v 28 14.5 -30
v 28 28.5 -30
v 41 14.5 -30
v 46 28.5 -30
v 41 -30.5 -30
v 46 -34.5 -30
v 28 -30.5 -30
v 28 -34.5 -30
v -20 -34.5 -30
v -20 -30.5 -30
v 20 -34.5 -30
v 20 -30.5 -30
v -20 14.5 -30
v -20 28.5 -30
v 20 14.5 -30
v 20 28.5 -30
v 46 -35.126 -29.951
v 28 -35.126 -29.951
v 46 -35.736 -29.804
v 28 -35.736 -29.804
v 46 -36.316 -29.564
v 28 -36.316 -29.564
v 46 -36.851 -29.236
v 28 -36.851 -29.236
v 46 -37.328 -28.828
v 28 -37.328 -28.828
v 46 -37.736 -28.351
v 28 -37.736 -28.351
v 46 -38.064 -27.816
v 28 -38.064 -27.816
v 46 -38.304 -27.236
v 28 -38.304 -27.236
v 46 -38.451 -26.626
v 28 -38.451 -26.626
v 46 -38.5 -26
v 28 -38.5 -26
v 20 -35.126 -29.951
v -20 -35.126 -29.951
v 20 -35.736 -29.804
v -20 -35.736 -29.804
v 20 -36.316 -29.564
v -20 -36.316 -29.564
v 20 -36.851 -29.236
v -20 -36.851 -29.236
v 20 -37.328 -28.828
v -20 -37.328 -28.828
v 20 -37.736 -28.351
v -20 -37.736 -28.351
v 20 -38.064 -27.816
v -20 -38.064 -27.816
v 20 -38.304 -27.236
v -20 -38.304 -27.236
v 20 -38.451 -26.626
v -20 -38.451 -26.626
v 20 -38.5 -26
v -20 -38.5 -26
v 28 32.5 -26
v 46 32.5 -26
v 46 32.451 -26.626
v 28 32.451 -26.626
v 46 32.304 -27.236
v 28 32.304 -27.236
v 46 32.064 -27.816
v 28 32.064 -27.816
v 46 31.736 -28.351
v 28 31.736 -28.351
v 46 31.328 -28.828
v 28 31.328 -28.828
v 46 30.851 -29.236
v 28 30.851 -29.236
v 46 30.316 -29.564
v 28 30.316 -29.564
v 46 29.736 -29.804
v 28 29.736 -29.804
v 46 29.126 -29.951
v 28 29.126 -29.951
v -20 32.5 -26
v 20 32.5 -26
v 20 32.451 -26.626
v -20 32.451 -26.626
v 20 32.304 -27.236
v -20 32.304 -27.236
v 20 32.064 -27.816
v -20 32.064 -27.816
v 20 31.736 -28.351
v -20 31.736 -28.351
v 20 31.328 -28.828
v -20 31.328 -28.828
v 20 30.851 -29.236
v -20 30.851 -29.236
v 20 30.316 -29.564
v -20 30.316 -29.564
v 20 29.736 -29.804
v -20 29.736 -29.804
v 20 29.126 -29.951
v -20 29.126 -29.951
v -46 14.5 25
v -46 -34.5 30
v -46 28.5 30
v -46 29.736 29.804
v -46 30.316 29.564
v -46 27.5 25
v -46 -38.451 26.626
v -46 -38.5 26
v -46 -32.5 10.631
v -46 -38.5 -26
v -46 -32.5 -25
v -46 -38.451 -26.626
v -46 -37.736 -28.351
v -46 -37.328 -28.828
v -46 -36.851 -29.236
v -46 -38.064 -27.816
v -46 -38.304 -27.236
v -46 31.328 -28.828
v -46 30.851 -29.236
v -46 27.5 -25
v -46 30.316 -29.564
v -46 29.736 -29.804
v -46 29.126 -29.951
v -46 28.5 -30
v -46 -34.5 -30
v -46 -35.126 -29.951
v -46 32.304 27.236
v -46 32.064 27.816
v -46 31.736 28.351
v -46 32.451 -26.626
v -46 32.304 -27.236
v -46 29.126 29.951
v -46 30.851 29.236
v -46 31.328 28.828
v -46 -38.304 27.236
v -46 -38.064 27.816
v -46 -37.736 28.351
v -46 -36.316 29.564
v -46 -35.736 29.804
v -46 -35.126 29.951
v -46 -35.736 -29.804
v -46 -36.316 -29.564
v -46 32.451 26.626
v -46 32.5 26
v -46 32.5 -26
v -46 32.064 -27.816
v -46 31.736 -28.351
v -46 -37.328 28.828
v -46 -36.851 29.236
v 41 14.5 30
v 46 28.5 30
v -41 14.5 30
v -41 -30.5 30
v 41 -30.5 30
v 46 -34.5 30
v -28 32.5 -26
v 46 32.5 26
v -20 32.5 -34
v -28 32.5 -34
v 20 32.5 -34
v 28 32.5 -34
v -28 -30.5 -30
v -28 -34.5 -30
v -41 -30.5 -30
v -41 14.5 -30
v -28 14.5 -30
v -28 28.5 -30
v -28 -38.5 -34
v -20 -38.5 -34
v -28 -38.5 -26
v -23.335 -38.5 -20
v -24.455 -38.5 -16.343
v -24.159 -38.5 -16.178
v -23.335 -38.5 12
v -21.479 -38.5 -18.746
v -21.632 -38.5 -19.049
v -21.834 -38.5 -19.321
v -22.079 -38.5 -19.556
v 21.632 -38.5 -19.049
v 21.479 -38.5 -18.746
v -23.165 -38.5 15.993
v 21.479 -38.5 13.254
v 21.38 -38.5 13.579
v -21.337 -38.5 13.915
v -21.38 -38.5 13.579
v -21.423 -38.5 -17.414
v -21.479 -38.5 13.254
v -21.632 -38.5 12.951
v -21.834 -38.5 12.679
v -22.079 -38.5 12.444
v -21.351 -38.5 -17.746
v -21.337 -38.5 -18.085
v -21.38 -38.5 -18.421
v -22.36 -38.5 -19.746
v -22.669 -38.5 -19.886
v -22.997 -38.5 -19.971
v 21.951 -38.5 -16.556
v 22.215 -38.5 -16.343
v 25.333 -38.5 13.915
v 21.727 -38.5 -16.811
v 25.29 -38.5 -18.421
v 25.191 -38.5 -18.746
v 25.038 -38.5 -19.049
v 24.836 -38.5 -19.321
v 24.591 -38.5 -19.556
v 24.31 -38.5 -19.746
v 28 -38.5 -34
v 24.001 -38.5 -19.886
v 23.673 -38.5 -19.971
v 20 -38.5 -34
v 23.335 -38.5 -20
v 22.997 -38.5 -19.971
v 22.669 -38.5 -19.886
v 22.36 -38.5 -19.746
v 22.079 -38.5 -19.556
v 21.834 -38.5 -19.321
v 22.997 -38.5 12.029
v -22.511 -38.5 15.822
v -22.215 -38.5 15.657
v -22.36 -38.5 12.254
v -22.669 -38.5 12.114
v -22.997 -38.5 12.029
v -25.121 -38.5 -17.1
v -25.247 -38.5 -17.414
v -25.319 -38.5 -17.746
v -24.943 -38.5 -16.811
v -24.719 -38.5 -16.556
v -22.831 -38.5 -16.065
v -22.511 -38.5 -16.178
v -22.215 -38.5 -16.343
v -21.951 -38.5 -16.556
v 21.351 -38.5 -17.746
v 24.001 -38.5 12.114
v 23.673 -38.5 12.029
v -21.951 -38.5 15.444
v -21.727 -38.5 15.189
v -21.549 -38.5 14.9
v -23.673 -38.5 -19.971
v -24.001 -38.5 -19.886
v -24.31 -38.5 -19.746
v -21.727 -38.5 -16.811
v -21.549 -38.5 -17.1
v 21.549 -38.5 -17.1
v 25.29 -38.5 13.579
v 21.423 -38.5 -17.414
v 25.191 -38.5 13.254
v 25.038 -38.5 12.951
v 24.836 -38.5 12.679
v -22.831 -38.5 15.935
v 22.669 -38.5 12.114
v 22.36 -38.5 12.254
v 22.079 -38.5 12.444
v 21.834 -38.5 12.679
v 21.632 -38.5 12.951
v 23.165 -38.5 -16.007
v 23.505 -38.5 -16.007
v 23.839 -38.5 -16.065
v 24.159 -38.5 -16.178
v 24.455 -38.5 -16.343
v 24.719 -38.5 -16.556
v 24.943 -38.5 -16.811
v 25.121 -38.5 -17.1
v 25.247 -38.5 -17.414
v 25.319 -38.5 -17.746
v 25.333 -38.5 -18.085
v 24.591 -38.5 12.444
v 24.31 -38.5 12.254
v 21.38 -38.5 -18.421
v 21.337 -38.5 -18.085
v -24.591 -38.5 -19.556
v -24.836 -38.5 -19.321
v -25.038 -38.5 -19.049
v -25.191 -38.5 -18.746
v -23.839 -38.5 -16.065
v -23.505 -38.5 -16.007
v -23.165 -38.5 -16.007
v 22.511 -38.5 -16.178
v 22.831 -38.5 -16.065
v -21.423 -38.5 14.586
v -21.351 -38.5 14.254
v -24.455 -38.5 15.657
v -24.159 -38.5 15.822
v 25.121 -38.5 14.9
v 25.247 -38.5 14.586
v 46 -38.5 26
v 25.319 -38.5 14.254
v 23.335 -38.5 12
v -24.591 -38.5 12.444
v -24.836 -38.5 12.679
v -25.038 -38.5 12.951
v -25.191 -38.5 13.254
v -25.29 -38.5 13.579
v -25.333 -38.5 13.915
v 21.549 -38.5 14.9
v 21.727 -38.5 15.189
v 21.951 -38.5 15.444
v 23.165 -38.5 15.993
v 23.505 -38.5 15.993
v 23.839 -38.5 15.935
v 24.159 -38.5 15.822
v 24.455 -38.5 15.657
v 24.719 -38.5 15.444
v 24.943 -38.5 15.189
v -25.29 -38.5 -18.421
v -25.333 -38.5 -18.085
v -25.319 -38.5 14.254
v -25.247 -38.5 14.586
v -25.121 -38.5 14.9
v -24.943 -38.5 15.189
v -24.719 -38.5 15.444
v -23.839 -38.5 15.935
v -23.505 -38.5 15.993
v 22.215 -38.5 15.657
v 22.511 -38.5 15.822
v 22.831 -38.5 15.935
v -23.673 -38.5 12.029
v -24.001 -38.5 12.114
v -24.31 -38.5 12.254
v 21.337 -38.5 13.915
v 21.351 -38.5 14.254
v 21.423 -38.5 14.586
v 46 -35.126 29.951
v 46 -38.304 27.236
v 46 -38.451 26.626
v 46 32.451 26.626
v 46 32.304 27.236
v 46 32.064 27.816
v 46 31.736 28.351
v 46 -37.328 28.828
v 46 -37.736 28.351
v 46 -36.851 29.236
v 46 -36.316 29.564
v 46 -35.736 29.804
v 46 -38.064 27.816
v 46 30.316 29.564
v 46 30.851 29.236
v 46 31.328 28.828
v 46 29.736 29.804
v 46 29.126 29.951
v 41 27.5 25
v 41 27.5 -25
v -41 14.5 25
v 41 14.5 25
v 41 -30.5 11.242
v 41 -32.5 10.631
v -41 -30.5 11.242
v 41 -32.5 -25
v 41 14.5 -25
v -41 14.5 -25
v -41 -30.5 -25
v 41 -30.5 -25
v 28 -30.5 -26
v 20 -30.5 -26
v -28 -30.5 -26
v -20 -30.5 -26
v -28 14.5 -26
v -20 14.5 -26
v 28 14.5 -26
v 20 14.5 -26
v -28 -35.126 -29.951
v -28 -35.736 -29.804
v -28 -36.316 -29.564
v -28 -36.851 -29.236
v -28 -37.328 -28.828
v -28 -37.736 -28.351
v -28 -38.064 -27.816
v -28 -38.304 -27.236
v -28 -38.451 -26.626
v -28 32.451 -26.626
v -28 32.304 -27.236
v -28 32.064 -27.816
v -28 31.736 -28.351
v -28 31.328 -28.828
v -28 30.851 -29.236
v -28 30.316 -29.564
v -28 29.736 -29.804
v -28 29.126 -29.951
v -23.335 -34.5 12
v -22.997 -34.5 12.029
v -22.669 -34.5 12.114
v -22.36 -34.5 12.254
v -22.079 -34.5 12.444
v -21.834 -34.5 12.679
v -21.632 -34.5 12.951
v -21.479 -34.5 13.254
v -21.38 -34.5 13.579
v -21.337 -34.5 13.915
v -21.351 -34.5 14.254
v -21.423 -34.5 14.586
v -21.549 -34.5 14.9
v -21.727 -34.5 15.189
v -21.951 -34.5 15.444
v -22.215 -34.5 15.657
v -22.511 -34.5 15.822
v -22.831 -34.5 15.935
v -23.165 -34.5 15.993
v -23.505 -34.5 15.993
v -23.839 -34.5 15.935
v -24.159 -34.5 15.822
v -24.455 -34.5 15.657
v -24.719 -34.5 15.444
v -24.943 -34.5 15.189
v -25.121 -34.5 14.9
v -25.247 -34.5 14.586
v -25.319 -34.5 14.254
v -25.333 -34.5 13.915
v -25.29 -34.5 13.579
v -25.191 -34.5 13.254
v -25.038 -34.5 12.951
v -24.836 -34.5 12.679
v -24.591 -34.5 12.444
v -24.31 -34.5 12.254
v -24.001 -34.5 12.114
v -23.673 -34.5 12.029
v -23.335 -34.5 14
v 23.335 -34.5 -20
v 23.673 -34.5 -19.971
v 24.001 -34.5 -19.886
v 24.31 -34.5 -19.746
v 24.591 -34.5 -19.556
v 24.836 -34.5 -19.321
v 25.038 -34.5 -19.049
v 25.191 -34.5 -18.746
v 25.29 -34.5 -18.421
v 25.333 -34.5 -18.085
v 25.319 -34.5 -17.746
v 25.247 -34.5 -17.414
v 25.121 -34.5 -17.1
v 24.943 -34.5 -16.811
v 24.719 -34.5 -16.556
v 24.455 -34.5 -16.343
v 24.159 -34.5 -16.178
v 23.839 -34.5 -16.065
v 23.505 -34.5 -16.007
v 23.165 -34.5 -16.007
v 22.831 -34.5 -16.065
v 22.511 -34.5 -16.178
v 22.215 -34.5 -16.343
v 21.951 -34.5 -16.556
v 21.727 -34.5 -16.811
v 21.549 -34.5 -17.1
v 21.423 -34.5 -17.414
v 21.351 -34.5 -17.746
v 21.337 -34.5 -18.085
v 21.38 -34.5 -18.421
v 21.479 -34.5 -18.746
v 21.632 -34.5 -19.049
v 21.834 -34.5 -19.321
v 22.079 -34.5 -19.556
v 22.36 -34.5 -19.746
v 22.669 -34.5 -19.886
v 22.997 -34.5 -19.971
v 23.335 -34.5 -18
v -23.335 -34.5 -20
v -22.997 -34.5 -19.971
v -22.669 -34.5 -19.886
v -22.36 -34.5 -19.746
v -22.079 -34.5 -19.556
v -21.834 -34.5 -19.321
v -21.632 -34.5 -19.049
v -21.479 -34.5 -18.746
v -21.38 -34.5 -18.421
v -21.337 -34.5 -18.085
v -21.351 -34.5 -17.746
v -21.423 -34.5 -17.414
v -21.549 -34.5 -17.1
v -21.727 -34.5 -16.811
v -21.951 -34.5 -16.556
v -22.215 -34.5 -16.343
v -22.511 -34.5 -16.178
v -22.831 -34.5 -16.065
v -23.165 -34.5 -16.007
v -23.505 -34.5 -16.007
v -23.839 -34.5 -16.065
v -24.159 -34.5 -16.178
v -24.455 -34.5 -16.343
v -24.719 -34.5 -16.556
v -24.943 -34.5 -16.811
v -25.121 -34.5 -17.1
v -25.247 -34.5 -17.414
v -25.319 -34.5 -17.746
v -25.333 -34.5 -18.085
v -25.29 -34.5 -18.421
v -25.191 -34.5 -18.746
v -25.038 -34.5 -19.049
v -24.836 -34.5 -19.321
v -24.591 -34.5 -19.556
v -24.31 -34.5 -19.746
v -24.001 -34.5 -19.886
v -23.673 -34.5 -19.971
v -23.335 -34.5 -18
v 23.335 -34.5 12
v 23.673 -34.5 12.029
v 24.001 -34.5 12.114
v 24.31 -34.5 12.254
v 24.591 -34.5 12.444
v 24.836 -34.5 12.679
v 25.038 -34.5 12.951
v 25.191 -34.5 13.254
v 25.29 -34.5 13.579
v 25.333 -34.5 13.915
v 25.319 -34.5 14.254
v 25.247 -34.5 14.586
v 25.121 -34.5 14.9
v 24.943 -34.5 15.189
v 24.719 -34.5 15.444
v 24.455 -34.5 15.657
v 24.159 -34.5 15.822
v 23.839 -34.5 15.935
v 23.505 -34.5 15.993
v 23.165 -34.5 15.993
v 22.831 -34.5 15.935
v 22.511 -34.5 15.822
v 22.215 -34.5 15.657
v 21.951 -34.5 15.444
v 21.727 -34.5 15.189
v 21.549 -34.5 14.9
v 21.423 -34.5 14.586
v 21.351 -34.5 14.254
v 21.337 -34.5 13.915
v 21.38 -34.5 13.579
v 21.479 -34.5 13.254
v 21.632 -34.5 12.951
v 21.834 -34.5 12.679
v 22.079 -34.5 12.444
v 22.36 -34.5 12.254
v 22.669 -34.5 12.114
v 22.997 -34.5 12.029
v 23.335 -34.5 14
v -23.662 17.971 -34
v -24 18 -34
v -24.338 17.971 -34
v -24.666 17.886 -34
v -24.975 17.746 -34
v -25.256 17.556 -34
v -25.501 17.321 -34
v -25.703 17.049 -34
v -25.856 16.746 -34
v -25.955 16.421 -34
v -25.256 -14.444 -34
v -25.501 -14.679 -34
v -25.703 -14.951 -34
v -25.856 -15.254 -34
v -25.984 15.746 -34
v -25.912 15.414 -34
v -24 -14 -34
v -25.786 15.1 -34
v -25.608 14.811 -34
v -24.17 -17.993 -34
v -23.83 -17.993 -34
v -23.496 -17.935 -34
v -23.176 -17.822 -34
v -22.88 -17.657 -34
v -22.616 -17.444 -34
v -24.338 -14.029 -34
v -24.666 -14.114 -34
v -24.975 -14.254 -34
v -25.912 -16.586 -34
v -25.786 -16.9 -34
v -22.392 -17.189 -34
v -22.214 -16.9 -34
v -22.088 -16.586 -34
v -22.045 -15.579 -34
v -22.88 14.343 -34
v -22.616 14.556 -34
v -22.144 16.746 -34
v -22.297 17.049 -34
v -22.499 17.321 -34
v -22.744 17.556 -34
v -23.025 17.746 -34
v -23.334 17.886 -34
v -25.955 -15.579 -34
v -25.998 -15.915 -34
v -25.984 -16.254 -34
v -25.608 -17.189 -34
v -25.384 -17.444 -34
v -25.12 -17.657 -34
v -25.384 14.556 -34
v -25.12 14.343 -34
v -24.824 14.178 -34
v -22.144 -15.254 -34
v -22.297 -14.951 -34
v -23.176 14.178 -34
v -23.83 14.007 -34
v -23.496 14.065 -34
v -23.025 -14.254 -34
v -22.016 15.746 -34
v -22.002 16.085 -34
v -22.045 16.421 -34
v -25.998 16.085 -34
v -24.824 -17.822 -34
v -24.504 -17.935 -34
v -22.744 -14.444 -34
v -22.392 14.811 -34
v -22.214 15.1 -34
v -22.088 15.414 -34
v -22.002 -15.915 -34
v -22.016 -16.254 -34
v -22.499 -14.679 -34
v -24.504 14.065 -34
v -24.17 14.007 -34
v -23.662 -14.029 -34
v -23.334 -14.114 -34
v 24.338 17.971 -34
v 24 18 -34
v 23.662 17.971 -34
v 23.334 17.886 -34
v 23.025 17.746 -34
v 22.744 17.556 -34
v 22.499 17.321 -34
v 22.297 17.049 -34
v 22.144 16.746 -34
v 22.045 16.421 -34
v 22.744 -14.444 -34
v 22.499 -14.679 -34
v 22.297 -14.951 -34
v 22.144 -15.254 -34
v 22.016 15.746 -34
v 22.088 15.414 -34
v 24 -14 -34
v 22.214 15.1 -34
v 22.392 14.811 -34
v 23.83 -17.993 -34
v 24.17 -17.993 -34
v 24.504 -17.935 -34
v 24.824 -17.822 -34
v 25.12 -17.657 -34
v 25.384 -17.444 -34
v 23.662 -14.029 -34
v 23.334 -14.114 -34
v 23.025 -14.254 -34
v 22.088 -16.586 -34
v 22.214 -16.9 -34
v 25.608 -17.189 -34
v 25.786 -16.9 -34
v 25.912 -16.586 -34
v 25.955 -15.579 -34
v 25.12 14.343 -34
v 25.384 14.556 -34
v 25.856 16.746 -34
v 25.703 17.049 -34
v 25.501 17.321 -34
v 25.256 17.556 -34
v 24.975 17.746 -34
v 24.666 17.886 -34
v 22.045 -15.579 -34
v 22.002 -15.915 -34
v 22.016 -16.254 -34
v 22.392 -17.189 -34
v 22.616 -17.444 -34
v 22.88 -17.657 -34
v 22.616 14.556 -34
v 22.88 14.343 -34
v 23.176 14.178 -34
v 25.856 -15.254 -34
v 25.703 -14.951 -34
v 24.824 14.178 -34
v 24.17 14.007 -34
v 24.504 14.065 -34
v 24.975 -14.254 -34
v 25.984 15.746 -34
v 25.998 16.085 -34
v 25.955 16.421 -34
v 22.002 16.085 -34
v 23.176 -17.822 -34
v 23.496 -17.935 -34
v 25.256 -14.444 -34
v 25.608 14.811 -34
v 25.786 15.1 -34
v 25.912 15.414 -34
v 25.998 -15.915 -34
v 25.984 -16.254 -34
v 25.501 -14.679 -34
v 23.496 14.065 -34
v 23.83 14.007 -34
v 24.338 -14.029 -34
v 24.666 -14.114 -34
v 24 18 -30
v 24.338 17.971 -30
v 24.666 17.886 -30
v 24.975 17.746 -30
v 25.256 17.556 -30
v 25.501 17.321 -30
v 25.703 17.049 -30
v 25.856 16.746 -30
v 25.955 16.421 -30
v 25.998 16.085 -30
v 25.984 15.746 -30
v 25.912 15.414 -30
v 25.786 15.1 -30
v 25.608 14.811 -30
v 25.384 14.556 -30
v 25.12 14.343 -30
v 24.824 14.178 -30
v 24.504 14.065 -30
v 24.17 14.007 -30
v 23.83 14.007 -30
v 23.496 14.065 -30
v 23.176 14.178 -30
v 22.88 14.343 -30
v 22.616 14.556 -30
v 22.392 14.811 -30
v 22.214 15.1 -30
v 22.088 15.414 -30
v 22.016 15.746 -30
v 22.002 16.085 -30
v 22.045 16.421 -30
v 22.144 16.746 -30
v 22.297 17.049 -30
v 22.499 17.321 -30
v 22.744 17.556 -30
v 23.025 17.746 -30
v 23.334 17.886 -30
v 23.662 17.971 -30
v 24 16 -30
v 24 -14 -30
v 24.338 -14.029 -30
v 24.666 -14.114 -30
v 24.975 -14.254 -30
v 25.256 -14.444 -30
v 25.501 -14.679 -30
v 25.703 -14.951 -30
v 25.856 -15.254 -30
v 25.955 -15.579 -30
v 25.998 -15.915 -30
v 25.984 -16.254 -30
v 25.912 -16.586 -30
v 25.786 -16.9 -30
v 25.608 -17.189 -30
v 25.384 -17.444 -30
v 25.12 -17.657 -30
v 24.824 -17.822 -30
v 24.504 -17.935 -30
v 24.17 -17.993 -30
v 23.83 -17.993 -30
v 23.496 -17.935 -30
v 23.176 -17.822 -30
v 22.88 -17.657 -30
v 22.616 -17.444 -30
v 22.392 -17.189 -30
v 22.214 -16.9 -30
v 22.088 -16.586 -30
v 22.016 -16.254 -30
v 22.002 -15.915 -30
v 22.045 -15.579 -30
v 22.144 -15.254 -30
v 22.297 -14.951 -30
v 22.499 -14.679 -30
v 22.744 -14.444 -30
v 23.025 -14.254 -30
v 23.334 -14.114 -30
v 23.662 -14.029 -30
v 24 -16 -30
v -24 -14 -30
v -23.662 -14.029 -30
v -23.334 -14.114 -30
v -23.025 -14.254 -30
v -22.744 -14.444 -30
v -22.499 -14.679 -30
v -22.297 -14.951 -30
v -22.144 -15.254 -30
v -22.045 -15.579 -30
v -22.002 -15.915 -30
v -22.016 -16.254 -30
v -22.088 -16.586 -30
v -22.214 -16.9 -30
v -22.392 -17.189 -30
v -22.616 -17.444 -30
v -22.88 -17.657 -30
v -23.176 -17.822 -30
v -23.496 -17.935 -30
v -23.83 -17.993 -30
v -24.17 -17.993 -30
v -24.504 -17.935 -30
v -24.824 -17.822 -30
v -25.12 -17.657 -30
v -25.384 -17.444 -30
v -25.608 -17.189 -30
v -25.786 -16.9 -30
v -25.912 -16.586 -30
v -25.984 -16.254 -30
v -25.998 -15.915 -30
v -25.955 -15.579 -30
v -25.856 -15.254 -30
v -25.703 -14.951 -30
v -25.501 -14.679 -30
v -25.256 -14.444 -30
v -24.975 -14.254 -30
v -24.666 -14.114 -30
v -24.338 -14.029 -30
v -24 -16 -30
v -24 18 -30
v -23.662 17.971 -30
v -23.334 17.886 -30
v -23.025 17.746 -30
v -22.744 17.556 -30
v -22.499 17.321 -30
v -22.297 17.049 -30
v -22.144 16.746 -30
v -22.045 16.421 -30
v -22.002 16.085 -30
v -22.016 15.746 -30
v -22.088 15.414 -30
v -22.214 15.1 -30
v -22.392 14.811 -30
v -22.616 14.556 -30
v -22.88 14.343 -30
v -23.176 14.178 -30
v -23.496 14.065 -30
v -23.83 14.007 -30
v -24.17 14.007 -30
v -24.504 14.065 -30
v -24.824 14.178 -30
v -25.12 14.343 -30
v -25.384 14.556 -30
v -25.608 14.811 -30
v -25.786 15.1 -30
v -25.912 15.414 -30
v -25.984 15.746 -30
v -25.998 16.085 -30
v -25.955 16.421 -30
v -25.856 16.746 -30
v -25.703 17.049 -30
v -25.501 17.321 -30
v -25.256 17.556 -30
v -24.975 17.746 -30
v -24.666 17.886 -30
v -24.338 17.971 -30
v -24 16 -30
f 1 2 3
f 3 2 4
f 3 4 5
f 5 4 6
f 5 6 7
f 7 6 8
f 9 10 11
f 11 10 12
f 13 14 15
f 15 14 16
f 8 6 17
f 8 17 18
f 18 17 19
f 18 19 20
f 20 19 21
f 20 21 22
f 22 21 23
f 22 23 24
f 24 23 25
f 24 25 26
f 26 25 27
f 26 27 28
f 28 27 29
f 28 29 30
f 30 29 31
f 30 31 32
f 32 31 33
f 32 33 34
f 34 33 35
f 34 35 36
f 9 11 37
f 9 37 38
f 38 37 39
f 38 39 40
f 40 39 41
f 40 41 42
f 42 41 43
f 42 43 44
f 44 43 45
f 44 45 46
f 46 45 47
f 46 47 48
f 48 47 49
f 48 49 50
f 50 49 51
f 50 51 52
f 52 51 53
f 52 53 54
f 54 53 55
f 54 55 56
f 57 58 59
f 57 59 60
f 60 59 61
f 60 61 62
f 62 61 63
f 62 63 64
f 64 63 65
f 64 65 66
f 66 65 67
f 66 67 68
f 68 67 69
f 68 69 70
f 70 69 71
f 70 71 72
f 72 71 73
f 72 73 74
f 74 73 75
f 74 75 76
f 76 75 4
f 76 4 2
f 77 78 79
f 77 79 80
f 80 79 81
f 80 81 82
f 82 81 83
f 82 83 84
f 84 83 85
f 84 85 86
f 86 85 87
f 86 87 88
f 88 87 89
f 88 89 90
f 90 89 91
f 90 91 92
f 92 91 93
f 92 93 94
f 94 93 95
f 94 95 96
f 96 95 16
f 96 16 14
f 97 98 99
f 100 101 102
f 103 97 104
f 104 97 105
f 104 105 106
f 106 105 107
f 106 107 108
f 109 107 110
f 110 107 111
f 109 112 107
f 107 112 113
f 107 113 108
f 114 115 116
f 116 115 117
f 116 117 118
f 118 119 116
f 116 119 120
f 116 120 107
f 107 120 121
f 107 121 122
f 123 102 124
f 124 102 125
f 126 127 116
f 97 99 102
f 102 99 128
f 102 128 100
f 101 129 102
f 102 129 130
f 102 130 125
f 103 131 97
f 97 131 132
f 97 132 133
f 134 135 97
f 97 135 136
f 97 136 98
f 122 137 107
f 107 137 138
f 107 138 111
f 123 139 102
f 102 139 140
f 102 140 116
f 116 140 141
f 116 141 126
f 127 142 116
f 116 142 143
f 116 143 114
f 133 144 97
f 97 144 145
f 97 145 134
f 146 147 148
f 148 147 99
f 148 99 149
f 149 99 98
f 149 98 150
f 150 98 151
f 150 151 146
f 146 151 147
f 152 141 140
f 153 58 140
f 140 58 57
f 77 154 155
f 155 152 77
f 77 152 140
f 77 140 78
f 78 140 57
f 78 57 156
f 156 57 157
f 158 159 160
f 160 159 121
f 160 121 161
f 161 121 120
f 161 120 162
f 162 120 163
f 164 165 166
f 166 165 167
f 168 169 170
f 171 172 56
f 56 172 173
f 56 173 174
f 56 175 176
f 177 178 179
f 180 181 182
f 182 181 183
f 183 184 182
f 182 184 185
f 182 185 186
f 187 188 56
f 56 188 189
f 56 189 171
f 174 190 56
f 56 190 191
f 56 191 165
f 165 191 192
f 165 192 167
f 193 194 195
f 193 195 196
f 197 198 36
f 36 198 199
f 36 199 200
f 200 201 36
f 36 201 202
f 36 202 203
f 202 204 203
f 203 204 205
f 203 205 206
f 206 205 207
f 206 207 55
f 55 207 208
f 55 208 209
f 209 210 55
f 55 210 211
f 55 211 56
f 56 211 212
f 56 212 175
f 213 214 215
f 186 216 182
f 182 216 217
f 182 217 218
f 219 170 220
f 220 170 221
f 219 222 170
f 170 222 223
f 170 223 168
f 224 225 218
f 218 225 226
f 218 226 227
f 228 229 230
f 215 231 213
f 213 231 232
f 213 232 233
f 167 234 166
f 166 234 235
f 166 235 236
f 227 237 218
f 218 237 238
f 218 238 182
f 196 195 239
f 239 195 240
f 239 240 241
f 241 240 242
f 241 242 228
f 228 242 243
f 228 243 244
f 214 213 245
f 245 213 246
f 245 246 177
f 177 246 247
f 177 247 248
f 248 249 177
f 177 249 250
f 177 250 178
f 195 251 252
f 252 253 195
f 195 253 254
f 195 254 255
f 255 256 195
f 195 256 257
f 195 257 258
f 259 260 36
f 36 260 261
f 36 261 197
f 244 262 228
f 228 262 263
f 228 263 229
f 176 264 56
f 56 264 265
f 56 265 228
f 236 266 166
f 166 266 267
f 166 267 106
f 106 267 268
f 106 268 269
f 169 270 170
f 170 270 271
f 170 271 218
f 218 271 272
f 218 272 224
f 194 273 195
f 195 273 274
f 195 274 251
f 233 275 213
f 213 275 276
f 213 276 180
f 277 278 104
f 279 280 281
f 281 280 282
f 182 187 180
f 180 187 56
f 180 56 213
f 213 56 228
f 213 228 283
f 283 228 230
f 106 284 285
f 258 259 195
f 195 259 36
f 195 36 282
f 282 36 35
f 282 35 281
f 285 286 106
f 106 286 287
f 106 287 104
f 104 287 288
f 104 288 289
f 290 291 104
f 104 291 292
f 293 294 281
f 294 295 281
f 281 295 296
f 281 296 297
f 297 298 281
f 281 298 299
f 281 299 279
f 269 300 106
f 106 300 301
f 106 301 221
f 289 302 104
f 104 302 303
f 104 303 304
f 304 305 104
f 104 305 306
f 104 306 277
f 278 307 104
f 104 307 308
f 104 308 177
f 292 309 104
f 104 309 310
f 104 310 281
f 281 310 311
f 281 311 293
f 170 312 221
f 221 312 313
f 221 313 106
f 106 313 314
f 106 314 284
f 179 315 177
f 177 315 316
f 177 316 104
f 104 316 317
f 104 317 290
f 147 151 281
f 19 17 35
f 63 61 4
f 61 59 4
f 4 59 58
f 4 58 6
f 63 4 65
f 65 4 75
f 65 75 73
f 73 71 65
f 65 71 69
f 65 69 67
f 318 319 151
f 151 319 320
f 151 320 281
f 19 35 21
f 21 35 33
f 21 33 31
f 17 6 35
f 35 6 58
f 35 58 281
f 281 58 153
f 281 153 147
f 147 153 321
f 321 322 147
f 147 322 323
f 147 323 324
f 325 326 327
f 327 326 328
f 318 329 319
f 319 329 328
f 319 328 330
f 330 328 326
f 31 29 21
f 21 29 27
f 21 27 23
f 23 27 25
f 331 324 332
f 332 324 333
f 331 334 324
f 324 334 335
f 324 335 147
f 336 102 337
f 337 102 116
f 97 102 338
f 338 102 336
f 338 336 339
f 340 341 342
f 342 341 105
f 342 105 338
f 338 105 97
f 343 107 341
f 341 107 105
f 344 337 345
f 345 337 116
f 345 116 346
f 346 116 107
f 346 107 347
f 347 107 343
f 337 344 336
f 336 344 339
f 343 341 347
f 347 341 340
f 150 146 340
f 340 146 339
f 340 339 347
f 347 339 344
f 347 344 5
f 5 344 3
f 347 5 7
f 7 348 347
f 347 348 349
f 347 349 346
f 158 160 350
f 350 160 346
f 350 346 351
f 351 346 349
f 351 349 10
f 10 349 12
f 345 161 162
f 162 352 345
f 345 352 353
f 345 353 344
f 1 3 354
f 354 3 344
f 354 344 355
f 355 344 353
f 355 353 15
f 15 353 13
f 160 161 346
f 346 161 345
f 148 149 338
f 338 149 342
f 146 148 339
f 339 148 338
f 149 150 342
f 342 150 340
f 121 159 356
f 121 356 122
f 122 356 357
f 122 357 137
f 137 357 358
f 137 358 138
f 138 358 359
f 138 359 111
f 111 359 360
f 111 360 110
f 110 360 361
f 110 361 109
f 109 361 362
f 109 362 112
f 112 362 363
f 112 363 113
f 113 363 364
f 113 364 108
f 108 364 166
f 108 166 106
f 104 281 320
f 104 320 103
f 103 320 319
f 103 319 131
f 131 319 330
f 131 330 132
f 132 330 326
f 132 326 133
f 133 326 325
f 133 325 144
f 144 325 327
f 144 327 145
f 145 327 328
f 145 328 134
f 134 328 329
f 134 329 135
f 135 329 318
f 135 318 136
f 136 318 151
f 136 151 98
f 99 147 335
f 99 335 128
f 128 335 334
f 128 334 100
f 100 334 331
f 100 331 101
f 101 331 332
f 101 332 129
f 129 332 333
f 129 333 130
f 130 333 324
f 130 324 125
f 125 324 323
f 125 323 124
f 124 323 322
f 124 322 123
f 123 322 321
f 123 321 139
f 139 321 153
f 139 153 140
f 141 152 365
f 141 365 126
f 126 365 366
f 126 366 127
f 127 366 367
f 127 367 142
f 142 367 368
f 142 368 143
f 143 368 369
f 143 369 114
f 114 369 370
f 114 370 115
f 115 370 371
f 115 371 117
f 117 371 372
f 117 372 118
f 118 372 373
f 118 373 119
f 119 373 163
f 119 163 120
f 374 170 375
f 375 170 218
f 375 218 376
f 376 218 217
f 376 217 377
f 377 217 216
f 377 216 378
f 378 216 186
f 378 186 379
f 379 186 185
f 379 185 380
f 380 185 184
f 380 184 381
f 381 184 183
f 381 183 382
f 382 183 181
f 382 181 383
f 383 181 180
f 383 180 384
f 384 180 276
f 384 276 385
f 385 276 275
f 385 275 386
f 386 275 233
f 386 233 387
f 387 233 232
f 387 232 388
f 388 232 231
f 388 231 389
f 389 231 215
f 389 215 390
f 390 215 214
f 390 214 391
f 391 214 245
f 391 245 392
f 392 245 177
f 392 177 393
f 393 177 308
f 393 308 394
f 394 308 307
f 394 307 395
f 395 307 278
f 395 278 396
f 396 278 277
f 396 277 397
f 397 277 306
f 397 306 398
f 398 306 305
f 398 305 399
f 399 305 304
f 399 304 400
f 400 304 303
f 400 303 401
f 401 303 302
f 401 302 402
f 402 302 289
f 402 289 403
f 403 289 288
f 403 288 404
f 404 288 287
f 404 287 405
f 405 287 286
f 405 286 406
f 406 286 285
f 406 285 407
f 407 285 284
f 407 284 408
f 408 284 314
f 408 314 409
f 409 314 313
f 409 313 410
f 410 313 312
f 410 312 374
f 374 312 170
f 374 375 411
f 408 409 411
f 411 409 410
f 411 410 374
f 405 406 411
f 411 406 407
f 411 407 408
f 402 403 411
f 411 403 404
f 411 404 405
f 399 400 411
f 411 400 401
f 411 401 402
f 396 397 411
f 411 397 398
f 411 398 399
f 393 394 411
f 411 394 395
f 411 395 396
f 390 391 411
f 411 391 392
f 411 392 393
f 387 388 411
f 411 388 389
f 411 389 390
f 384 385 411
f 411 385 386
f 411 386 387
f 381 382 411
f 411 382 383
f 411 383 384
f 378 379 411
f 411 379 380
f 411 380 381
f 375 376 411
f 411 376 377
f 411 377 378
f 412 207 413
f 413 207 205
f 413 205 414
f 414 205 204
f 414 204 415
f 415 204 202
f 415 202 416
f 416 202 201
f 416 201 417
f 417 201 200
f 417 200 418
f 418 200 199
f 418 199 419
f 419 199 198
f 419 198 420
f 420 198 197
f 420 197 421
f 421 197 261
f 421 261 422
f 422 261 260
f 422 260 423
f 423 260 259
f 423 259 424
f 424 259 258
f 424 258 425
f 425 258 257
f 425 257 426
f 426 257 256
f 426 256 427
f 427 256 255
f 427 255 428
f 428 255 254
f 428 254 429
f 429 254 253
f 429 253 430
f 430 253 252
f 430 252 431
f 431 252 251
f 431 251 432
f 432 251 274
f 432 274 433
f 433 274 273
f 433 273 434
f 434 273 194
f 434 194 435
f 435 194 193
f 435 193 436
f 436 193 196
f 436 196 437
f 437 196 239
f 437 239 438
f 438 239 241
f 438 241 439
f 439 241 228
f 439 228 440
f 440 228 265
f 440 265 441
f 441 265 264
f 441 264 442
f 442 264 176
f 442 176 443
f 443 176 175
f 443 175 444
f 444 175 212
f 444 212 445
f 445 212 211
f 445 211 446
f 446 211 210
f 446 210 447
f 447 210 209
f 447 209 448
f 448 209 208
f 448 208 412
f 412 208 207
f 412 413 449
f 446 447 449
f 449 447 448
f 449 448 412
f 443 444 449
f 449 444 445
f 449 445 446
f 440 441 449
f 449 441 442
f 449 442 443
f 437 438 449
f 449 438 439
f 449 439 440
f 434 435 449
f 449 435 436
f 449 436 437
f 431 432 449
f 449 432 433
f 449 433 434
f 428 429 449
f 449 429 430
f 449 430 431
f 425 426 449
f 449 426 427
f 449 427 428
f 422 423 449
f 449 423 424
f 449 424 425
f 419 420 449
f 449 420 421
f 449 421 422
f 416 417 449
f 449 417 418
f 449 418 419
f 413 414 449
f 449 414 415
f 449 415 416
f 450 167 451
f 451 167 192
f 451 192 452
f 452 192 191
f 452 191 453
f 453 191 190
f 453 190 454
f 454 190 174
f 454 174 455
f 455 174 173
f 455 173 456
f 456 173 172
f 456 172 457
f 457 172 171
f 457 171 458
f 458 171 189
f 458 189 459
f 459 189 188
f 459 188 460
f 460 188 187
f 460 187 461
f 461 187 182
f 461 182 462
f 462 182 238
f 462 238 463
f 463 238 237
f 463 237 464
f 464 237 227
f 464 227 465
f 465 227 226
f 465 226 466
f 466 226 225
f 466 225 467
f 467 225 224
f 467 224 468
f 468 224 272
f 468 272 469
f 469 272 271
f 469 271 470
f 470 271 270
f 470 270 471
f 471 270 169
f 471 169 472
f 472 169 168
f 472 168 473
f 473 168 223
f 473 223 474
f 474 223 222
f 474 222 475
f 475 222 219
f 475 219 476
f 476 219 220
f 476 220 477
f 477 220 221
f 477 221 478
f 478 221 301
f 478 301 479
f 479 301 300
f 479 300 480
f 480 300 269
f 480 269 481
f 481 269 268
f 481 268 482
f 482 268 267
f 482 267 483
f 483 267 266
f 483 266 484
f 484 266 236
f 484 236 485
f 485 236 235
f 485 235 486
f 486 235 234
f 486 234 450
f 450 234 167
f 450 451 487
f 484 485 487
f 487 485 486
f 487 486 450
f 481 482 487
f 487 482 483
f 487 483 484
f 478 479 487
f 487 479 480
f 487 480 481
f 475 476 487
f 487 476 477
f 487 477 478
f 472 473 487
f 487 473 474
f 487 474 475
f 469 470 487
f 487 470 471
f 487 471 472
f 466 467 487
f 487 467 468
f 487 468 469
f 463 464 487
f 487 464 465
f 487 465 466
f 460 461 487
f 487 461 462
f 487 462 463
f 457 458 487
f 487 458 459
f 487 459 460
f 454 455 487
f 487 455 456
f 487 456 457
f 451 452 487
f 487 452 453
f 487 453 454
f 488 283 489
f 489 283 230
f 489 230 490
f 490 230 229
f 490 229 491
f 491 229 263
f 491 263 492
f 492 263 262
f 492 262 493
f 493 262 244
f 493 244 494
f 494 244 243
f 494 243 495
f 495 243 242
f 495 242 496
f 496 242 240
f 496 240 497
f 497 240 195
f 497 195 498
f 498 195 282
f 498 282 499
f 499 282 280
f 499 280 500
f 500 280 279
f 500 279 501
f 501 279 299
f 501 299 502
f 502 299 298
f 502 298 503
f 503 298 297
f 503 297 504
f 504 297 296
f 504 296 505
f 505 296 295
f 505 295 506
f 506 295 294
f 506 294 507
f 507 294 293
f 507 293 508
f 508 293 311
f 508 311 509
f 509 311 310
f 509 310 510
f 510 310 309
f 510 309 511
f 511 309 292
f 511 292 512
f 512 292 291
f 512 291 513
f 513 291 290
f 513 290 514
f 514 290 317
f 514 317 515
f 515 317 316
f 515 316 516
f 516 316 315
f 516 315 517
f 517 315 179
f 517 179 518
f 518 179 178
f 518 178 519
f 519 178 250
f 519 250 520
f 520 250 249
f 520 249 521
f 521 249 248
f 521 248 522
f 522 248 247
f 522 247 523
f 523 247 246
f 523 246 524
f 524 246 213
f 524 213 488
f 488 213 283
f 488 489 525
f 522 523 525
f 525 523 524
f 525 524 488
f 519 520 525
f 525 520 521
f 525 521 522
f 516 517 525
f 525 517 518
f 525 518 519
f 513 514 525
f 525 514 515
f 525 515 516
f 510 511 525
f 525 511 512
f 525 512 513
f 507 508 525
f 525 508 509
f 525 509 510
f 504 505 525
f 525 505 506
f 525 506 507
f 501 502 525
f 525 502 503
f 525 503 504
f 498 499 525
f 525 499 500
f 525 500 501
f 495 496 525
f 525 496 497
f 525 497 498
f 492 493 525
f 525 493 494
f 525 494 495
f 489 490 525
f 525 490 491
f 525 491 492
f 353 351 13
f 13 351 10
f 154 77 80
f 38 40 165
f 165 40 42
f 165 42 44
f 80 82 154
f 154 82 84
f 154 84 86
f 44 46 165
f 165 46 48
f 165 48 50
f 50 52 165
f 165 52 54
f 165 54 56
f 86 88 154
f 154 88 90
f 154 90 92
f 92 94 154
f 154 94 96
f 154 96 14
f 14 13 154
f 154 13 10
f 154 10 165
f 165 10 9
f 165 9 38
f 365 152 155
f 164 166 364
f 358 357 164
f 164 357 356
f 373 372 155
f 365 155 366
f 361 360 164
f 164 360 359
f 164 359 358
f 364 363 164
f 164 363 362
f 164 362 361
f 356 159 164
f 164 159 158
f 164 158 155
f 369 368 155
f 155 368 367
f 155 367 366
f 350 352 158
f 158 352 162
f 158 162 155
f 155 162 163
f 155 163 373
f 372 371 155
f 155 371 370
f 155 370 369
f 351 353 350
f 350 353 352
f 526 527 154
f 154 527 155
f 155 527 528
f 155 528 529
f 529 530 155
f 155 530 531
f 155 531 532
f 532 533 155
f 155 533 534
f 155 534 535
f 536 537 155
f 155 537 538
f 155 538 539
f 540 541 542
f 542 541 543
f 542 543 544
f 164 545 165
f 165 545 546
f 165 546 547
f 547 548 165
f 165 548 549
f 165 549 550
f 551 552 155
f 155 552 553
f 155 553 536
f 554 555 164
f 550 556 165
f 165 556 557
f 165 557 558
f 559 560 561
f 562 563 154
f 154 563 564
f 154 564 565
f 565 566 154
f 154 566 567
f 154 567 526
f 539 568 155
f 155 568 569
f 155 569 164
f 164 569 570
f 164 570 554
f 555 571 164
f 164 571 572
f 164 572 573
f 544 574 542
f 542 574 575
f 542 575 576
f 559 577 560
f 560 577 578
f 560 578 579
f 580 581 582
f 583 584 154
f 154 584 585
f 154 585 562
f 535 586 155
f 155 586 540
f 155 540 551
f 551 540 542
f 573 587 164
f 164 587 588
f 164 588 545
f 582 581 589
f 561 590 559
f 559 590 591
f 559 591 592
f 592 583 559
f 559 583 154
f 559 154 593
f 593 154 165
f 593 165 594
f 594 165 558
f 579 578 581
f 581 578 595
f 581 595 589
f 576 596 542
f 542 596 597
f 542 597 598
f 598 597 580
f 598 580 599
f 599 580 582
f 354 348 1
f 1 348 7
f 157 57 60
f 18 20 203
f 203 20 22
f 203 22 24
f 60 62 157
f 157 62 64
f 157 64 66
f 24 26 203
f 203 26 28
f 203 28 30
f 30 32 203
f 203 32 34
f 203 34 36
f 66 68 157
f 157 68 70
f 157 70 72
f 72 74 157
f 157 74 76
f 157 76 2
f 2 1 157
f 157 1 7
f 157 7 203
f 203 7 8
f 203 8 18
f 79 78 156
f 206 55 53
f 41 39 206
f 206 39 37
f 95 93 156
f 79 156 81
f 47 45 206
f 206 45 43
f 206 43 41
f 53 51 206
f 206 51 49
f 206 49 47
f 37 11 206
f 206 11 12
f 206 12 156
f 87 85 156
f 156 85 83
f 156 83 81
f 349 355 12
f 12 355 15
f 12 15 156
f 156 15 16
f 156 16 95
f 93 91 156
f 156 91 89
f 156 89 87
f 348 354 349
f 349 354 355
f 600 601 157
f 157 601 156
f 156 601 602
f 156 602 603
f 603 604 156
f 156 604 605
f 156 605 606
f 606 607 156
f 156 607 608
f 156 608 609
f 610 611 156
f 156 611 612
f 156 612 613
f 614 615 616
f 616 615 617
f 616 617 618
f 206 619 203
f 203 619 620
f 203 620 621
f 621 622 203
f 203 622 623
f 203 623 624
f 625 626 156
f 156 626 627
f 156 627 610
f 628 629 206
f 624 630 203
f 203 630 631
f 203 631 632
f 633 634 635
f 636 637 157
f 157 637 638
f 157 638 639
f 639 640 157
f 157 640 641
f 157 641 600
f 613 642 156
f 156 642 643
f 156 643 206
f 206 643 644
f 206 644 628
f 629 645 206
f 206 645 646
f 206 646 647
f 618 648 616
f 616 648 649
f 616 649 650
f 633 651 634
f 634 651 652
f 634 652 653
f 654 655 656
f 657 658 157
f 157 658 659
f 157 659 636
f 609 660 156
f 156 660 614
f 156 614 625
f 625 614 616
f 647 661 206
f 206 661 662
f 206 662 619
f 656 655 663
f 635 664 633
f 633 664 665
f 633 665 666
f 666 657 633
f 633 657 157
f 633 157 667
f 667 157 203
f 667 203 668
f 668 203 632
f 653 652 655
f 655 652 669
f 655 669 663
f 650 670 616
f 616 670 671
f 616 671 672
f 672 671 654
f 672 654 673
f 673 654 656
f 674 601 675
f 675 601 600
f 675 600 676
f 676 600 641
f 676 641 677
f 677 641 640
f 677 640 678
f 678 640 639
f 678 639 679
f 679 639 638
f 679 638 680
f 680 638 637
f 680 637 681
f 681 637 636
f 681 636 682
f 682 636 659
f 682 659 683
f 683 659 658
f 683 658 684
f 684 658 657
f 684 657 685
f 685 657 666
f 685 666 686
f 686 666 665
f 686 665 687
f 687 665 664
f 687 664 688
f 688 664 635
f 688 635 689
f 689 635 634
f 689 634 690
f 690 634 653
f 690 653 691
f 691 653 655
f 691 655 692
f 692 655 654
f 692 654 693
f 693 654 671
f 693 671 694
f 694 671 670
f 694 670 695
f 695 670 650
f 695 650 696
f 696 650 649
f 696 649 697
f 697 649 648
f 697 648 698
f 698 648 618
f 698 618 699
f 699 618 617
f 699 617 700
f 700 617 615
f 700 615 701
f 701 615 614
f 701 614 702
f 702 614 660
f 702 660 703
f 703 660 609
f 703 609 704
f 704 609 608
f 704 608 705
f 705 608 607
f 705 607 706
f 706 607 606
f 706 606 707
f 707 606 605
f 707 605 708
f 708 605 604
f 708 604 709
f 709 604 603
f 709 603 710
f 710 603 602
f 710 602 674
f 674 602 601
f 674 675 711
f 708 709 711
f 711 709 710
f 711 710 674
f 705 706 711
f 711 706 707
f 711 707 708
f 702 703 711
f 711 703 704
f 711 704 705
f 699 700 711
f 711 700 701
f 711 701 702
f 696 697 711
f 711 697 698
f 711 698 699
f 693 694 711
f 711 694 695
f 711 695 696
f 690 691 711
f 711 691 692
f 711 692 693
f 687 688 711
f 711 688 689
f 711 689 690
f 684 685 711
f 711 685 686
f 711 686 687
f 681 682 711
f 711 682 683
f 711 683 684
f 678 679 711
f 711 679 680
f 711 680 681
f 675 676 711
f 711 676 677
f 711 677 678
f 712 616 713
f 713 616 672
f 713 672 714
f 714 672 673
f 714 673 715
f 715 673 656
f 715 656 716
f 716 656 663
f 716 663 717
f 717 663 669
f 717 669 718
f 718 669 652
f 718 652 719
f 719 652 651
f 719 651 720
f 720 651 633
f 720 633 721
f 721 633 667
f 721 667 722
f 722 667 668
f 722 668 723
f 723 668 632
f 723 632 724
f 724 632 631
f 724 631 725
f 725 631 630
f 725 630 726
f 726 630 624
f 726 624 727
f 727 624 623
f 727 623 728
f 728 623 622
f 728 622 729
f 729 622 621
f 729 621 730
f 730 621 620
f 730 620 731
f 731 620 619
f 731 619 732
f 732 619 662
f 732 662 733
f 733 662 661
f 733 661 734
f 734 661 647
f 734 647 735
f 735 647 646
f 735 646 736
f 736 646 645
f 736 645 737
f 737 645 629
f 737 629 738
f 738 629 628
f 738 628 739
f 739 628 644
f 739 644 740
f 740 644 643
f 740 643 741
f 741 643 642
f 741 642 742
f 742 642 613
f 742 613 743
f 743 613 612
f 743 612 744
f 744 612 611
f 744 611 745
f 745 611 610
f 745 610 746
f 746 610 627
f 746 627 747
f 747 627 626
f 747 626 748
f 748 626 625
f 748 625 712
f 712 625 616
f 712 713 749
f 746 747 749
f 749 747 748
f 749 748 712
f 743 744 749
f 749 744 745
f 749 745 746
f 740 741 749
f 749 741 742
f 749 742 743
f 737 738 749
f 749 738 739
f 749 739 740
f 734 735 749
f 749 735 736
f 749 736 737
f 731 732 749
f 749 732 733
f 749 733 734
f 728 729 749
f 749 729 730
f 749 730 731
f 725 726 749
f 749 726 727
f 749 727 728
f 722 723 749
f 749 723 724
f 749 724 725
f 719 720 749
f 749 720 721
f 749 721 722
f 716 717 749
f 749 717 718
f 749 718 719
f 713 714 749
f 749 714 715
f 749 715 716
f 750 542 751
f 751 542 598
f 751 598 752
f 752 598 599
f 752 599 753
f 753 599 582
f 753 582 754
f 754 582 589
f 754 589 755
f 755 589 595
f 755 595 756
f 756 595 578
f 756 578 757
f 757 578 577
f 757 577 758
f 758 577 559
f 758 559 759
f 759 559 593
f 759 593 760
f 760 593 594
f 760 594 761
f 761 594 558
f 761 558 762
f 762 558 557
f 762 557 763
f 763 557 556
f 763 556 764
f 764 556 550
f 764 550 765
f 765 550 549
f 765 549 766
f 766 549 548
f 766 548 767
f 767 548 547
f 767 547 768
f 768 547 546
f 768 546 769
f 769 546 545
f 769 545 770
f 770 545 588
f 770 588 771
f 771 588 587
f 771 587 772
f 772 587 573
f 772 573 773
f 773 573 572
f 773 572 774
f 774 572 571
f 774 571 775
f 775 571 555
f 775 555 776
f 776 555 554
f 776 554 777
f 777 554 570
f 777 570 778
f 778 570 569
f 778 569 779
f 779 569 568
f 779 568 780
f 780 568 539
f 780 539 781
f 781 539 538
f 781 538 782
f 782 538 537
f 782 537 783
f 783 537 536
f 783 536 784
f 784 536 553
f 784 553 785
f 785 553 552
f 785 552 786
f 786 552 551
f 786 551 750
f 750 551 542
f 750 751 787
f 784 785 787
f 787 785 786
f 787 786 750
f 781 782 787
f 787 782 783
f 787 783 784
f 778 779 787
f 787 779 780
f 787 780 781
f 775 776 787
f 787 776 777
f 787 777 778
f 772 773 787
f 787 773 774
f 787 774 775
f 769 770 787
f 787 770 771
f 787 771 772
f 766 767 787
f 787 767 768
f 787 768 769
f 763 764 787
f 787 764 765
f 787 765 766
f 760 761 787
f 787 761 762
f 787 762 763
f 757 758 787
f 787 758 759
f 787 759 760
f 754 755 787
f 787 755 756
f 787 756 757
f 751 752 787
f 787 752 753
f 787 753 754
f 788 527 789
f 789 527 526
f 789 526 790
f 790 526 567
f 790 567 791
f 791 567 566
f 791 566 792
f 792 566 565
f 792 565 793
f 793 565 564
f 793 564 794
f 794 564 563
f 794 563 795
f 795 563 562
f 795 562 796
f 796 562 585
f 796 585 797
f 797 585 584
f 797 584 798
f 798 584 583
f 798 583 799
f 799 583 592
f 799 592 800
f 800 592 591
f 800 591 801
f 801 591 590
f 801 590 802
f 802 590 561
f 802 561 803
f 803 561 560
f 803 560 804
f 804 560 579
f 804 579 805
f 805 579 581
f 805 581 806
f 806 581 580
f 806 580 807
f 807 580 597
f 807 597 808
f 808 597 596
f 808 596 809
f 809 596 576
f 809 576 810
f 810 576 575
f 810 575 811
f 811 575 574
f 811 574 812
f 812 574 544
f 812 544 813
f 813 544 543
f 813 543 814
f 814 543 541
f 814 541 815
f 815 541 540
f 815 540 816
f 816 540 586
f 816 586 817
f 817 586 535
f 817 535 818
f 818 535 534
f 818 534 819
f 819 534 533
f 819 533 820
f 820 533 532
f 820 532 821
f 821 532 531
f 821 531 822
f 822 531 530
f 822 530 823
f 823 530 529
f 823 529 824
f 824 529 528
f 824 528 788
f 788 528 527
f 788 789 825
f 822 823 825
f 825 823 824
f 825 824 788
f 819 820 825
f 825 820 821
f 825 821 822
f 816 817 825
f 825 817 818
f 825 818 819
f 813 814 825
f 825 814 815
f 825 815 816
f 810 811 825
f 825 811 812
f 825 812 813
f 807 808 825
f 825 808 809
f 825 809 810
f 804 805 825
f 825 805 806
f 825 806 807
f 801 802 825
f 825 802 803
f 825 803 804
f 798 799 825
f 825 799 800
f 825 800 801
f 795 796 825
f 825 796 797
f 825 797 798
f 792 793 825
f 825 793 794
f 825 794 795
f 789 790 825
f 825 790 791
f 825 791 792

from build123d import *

# Parameters (mm, degrees)
BASE_DEPTH               = 46
BASE_DEPTH_BACK          = 46
SKETCH4_W                = 60
SKETCH4_H                = 71
LIDAR_DEPTH              = 41
LIDAR_DEPTH_BACK         = 46
HOLEFRONTBACK_DEPTH      = 68.068994327
HOLEFRONTBACK_DEPTH_BACK = 68.068994327
SKETCH6_W                = 82
SKETCH6_H                = 45
FILLET2_R                = 4
SKETCH10_R               = 2
CUT_EXTRUDE1_DEPTH       = 4
BOSS_EXTRUDE1_DEPTH      = 4
BOSS_EXTRUDE1_DEPTH_BACK = 4
SKETCH11_W               = 8
SKETCH11_H               = 71
SKETCH12_R               = 2
CUT_EXTRUDE2_DEPTH       = 4


with BuildPart() as part:
    # Sketch4 → Base (new, two sides: drawn at the far end of the back side and taken through both)
    with BuildSketch(Plane(origin=(0, 0, 0), x_dir=(0, 0, -1), z_dir=(1, 0, 0)).offset(-BASE_DEPTH_BACK)):
        with Locations((0, -3)):
            Rectangle(SKETCH4_W, SKETCH4_H)
    extrude(amount=BASE_DEPTH + BASE_DEPTH_BACK)

    # Sketch5 → LIDAR (cut, two sides: drawn at the far end of the back side and taken through both)
    with BuildSketch(Plane(origin=(0, 0, 0), x_dir=(0, 0, -1), z_dir=(1, 0, 0)).offset(-LIDAR_DEPTH_BACK)):
        Polygon((-25, 27.5), (-25, 14.5), (-10.630657971, -32.5), (25, -32.5), (25, 27.5), align=None)
    extrude(amount=LIDAR_DEPTH + LIDAR_DEPTH_BACK, mode=Mode.SUBTRACT)

    # Sketch6 → HoleFrontBack (cut, two sides: drawn at the far end of the back side and taken through both)
    with BuildSketch(Plane.XY.offset(-HOLEFRONTBACK_DEPTH_BACK)):
        with Locations((0, -8)):
            Rectangle(SKETCH6_W, SKETCH6_H)
    extrude(amount=HOLEFRONTBACK_DEPTH + HOLEFRONTBACK_DEPTH_BACK, mode=Mode.SUBTRACT)

    # Fillet2
    fillet2_edges = [part.edges().sort_by_distance(p)[0] for p in [
        (0, 32.5, 30),
        (0, 32.5, -30),
        (0, -38.5, -30),
        (0, -38.5, 30),
    ]]
    fillet(fillet2_edges, radius=FILLET2_R)

    # Sketch10 → Cut-Extrude1 (cut)
    with BuildSketch(Plane.XZ.offset(38.5)):
        with Locations(Location((-23.335, 14, 0), (0, 0, 270))):
            Circle(SKETCH10_R)
        with Locations(Location((23.335, 14, 0), (0, 0, 270))):
            Circle(SKETCH10_R)
        with Locations(Location((-23.335, -18, 0), (0, 0, 270))):
            Circle(SKETCH10_R)
        with Locations(Location((23.335, -18, 0), (0, 0, 270))):
            Circle(SKETCH10_R)
    extrude(amount=-CUT_EXTRUDE1_DEPTH, mode=Mode.SUBTRACT)

    # Sketch11 → Boss-Extrude1 (add, two sides: drawn at the far end of the back side and taken through both)
    with BuildSketch(Plane(origin=(0, 0, -30), x_dir=(-1, 0, 0), z_dir=(0, 0, -1)).offset(-BOSS_EXTRUDE1_DEPTH_BACK)):
        with Locations((-24, -3)):
            Rectangle(SKETCH11_W, SKETCH11_H)
        with Locations((24, -3)):
            Rectangle(SKETCH11_W, SKETCH11_H)
    extrude(amount=BOSS_EXTRUDE1_DEPTH + BOSS_EXTRUDE1_DEPTH_BACK)

    # Sketch12 → Cut-Extrude2 (cut)
    with BuildSketch(Plane(origin=(0, 0, -34), x_dir=(-1, 0, 0), z_dir=(0, 0, -1))):
        with Locations(Location((-24, 16, 0), (0, 0, 90))):
            Circle(SKETCH12_R)
        with Locations(Location((24, 16, 0), (0, 0, 90))):
            Circle(SKETCH12_R)
        with Locations(Location((-24, -16, 0), (0, 0, 90))):
            Circle(SKETCH12_R)
        with Locations(Location((24, -16, 0), (0, 0, 90))):
            Circle(SKETCH12_R)
    extrude(amount=-CUT_EXTRUDE2_DEPTH, mode=Mode.SUBTRACT)


solid = part.part
